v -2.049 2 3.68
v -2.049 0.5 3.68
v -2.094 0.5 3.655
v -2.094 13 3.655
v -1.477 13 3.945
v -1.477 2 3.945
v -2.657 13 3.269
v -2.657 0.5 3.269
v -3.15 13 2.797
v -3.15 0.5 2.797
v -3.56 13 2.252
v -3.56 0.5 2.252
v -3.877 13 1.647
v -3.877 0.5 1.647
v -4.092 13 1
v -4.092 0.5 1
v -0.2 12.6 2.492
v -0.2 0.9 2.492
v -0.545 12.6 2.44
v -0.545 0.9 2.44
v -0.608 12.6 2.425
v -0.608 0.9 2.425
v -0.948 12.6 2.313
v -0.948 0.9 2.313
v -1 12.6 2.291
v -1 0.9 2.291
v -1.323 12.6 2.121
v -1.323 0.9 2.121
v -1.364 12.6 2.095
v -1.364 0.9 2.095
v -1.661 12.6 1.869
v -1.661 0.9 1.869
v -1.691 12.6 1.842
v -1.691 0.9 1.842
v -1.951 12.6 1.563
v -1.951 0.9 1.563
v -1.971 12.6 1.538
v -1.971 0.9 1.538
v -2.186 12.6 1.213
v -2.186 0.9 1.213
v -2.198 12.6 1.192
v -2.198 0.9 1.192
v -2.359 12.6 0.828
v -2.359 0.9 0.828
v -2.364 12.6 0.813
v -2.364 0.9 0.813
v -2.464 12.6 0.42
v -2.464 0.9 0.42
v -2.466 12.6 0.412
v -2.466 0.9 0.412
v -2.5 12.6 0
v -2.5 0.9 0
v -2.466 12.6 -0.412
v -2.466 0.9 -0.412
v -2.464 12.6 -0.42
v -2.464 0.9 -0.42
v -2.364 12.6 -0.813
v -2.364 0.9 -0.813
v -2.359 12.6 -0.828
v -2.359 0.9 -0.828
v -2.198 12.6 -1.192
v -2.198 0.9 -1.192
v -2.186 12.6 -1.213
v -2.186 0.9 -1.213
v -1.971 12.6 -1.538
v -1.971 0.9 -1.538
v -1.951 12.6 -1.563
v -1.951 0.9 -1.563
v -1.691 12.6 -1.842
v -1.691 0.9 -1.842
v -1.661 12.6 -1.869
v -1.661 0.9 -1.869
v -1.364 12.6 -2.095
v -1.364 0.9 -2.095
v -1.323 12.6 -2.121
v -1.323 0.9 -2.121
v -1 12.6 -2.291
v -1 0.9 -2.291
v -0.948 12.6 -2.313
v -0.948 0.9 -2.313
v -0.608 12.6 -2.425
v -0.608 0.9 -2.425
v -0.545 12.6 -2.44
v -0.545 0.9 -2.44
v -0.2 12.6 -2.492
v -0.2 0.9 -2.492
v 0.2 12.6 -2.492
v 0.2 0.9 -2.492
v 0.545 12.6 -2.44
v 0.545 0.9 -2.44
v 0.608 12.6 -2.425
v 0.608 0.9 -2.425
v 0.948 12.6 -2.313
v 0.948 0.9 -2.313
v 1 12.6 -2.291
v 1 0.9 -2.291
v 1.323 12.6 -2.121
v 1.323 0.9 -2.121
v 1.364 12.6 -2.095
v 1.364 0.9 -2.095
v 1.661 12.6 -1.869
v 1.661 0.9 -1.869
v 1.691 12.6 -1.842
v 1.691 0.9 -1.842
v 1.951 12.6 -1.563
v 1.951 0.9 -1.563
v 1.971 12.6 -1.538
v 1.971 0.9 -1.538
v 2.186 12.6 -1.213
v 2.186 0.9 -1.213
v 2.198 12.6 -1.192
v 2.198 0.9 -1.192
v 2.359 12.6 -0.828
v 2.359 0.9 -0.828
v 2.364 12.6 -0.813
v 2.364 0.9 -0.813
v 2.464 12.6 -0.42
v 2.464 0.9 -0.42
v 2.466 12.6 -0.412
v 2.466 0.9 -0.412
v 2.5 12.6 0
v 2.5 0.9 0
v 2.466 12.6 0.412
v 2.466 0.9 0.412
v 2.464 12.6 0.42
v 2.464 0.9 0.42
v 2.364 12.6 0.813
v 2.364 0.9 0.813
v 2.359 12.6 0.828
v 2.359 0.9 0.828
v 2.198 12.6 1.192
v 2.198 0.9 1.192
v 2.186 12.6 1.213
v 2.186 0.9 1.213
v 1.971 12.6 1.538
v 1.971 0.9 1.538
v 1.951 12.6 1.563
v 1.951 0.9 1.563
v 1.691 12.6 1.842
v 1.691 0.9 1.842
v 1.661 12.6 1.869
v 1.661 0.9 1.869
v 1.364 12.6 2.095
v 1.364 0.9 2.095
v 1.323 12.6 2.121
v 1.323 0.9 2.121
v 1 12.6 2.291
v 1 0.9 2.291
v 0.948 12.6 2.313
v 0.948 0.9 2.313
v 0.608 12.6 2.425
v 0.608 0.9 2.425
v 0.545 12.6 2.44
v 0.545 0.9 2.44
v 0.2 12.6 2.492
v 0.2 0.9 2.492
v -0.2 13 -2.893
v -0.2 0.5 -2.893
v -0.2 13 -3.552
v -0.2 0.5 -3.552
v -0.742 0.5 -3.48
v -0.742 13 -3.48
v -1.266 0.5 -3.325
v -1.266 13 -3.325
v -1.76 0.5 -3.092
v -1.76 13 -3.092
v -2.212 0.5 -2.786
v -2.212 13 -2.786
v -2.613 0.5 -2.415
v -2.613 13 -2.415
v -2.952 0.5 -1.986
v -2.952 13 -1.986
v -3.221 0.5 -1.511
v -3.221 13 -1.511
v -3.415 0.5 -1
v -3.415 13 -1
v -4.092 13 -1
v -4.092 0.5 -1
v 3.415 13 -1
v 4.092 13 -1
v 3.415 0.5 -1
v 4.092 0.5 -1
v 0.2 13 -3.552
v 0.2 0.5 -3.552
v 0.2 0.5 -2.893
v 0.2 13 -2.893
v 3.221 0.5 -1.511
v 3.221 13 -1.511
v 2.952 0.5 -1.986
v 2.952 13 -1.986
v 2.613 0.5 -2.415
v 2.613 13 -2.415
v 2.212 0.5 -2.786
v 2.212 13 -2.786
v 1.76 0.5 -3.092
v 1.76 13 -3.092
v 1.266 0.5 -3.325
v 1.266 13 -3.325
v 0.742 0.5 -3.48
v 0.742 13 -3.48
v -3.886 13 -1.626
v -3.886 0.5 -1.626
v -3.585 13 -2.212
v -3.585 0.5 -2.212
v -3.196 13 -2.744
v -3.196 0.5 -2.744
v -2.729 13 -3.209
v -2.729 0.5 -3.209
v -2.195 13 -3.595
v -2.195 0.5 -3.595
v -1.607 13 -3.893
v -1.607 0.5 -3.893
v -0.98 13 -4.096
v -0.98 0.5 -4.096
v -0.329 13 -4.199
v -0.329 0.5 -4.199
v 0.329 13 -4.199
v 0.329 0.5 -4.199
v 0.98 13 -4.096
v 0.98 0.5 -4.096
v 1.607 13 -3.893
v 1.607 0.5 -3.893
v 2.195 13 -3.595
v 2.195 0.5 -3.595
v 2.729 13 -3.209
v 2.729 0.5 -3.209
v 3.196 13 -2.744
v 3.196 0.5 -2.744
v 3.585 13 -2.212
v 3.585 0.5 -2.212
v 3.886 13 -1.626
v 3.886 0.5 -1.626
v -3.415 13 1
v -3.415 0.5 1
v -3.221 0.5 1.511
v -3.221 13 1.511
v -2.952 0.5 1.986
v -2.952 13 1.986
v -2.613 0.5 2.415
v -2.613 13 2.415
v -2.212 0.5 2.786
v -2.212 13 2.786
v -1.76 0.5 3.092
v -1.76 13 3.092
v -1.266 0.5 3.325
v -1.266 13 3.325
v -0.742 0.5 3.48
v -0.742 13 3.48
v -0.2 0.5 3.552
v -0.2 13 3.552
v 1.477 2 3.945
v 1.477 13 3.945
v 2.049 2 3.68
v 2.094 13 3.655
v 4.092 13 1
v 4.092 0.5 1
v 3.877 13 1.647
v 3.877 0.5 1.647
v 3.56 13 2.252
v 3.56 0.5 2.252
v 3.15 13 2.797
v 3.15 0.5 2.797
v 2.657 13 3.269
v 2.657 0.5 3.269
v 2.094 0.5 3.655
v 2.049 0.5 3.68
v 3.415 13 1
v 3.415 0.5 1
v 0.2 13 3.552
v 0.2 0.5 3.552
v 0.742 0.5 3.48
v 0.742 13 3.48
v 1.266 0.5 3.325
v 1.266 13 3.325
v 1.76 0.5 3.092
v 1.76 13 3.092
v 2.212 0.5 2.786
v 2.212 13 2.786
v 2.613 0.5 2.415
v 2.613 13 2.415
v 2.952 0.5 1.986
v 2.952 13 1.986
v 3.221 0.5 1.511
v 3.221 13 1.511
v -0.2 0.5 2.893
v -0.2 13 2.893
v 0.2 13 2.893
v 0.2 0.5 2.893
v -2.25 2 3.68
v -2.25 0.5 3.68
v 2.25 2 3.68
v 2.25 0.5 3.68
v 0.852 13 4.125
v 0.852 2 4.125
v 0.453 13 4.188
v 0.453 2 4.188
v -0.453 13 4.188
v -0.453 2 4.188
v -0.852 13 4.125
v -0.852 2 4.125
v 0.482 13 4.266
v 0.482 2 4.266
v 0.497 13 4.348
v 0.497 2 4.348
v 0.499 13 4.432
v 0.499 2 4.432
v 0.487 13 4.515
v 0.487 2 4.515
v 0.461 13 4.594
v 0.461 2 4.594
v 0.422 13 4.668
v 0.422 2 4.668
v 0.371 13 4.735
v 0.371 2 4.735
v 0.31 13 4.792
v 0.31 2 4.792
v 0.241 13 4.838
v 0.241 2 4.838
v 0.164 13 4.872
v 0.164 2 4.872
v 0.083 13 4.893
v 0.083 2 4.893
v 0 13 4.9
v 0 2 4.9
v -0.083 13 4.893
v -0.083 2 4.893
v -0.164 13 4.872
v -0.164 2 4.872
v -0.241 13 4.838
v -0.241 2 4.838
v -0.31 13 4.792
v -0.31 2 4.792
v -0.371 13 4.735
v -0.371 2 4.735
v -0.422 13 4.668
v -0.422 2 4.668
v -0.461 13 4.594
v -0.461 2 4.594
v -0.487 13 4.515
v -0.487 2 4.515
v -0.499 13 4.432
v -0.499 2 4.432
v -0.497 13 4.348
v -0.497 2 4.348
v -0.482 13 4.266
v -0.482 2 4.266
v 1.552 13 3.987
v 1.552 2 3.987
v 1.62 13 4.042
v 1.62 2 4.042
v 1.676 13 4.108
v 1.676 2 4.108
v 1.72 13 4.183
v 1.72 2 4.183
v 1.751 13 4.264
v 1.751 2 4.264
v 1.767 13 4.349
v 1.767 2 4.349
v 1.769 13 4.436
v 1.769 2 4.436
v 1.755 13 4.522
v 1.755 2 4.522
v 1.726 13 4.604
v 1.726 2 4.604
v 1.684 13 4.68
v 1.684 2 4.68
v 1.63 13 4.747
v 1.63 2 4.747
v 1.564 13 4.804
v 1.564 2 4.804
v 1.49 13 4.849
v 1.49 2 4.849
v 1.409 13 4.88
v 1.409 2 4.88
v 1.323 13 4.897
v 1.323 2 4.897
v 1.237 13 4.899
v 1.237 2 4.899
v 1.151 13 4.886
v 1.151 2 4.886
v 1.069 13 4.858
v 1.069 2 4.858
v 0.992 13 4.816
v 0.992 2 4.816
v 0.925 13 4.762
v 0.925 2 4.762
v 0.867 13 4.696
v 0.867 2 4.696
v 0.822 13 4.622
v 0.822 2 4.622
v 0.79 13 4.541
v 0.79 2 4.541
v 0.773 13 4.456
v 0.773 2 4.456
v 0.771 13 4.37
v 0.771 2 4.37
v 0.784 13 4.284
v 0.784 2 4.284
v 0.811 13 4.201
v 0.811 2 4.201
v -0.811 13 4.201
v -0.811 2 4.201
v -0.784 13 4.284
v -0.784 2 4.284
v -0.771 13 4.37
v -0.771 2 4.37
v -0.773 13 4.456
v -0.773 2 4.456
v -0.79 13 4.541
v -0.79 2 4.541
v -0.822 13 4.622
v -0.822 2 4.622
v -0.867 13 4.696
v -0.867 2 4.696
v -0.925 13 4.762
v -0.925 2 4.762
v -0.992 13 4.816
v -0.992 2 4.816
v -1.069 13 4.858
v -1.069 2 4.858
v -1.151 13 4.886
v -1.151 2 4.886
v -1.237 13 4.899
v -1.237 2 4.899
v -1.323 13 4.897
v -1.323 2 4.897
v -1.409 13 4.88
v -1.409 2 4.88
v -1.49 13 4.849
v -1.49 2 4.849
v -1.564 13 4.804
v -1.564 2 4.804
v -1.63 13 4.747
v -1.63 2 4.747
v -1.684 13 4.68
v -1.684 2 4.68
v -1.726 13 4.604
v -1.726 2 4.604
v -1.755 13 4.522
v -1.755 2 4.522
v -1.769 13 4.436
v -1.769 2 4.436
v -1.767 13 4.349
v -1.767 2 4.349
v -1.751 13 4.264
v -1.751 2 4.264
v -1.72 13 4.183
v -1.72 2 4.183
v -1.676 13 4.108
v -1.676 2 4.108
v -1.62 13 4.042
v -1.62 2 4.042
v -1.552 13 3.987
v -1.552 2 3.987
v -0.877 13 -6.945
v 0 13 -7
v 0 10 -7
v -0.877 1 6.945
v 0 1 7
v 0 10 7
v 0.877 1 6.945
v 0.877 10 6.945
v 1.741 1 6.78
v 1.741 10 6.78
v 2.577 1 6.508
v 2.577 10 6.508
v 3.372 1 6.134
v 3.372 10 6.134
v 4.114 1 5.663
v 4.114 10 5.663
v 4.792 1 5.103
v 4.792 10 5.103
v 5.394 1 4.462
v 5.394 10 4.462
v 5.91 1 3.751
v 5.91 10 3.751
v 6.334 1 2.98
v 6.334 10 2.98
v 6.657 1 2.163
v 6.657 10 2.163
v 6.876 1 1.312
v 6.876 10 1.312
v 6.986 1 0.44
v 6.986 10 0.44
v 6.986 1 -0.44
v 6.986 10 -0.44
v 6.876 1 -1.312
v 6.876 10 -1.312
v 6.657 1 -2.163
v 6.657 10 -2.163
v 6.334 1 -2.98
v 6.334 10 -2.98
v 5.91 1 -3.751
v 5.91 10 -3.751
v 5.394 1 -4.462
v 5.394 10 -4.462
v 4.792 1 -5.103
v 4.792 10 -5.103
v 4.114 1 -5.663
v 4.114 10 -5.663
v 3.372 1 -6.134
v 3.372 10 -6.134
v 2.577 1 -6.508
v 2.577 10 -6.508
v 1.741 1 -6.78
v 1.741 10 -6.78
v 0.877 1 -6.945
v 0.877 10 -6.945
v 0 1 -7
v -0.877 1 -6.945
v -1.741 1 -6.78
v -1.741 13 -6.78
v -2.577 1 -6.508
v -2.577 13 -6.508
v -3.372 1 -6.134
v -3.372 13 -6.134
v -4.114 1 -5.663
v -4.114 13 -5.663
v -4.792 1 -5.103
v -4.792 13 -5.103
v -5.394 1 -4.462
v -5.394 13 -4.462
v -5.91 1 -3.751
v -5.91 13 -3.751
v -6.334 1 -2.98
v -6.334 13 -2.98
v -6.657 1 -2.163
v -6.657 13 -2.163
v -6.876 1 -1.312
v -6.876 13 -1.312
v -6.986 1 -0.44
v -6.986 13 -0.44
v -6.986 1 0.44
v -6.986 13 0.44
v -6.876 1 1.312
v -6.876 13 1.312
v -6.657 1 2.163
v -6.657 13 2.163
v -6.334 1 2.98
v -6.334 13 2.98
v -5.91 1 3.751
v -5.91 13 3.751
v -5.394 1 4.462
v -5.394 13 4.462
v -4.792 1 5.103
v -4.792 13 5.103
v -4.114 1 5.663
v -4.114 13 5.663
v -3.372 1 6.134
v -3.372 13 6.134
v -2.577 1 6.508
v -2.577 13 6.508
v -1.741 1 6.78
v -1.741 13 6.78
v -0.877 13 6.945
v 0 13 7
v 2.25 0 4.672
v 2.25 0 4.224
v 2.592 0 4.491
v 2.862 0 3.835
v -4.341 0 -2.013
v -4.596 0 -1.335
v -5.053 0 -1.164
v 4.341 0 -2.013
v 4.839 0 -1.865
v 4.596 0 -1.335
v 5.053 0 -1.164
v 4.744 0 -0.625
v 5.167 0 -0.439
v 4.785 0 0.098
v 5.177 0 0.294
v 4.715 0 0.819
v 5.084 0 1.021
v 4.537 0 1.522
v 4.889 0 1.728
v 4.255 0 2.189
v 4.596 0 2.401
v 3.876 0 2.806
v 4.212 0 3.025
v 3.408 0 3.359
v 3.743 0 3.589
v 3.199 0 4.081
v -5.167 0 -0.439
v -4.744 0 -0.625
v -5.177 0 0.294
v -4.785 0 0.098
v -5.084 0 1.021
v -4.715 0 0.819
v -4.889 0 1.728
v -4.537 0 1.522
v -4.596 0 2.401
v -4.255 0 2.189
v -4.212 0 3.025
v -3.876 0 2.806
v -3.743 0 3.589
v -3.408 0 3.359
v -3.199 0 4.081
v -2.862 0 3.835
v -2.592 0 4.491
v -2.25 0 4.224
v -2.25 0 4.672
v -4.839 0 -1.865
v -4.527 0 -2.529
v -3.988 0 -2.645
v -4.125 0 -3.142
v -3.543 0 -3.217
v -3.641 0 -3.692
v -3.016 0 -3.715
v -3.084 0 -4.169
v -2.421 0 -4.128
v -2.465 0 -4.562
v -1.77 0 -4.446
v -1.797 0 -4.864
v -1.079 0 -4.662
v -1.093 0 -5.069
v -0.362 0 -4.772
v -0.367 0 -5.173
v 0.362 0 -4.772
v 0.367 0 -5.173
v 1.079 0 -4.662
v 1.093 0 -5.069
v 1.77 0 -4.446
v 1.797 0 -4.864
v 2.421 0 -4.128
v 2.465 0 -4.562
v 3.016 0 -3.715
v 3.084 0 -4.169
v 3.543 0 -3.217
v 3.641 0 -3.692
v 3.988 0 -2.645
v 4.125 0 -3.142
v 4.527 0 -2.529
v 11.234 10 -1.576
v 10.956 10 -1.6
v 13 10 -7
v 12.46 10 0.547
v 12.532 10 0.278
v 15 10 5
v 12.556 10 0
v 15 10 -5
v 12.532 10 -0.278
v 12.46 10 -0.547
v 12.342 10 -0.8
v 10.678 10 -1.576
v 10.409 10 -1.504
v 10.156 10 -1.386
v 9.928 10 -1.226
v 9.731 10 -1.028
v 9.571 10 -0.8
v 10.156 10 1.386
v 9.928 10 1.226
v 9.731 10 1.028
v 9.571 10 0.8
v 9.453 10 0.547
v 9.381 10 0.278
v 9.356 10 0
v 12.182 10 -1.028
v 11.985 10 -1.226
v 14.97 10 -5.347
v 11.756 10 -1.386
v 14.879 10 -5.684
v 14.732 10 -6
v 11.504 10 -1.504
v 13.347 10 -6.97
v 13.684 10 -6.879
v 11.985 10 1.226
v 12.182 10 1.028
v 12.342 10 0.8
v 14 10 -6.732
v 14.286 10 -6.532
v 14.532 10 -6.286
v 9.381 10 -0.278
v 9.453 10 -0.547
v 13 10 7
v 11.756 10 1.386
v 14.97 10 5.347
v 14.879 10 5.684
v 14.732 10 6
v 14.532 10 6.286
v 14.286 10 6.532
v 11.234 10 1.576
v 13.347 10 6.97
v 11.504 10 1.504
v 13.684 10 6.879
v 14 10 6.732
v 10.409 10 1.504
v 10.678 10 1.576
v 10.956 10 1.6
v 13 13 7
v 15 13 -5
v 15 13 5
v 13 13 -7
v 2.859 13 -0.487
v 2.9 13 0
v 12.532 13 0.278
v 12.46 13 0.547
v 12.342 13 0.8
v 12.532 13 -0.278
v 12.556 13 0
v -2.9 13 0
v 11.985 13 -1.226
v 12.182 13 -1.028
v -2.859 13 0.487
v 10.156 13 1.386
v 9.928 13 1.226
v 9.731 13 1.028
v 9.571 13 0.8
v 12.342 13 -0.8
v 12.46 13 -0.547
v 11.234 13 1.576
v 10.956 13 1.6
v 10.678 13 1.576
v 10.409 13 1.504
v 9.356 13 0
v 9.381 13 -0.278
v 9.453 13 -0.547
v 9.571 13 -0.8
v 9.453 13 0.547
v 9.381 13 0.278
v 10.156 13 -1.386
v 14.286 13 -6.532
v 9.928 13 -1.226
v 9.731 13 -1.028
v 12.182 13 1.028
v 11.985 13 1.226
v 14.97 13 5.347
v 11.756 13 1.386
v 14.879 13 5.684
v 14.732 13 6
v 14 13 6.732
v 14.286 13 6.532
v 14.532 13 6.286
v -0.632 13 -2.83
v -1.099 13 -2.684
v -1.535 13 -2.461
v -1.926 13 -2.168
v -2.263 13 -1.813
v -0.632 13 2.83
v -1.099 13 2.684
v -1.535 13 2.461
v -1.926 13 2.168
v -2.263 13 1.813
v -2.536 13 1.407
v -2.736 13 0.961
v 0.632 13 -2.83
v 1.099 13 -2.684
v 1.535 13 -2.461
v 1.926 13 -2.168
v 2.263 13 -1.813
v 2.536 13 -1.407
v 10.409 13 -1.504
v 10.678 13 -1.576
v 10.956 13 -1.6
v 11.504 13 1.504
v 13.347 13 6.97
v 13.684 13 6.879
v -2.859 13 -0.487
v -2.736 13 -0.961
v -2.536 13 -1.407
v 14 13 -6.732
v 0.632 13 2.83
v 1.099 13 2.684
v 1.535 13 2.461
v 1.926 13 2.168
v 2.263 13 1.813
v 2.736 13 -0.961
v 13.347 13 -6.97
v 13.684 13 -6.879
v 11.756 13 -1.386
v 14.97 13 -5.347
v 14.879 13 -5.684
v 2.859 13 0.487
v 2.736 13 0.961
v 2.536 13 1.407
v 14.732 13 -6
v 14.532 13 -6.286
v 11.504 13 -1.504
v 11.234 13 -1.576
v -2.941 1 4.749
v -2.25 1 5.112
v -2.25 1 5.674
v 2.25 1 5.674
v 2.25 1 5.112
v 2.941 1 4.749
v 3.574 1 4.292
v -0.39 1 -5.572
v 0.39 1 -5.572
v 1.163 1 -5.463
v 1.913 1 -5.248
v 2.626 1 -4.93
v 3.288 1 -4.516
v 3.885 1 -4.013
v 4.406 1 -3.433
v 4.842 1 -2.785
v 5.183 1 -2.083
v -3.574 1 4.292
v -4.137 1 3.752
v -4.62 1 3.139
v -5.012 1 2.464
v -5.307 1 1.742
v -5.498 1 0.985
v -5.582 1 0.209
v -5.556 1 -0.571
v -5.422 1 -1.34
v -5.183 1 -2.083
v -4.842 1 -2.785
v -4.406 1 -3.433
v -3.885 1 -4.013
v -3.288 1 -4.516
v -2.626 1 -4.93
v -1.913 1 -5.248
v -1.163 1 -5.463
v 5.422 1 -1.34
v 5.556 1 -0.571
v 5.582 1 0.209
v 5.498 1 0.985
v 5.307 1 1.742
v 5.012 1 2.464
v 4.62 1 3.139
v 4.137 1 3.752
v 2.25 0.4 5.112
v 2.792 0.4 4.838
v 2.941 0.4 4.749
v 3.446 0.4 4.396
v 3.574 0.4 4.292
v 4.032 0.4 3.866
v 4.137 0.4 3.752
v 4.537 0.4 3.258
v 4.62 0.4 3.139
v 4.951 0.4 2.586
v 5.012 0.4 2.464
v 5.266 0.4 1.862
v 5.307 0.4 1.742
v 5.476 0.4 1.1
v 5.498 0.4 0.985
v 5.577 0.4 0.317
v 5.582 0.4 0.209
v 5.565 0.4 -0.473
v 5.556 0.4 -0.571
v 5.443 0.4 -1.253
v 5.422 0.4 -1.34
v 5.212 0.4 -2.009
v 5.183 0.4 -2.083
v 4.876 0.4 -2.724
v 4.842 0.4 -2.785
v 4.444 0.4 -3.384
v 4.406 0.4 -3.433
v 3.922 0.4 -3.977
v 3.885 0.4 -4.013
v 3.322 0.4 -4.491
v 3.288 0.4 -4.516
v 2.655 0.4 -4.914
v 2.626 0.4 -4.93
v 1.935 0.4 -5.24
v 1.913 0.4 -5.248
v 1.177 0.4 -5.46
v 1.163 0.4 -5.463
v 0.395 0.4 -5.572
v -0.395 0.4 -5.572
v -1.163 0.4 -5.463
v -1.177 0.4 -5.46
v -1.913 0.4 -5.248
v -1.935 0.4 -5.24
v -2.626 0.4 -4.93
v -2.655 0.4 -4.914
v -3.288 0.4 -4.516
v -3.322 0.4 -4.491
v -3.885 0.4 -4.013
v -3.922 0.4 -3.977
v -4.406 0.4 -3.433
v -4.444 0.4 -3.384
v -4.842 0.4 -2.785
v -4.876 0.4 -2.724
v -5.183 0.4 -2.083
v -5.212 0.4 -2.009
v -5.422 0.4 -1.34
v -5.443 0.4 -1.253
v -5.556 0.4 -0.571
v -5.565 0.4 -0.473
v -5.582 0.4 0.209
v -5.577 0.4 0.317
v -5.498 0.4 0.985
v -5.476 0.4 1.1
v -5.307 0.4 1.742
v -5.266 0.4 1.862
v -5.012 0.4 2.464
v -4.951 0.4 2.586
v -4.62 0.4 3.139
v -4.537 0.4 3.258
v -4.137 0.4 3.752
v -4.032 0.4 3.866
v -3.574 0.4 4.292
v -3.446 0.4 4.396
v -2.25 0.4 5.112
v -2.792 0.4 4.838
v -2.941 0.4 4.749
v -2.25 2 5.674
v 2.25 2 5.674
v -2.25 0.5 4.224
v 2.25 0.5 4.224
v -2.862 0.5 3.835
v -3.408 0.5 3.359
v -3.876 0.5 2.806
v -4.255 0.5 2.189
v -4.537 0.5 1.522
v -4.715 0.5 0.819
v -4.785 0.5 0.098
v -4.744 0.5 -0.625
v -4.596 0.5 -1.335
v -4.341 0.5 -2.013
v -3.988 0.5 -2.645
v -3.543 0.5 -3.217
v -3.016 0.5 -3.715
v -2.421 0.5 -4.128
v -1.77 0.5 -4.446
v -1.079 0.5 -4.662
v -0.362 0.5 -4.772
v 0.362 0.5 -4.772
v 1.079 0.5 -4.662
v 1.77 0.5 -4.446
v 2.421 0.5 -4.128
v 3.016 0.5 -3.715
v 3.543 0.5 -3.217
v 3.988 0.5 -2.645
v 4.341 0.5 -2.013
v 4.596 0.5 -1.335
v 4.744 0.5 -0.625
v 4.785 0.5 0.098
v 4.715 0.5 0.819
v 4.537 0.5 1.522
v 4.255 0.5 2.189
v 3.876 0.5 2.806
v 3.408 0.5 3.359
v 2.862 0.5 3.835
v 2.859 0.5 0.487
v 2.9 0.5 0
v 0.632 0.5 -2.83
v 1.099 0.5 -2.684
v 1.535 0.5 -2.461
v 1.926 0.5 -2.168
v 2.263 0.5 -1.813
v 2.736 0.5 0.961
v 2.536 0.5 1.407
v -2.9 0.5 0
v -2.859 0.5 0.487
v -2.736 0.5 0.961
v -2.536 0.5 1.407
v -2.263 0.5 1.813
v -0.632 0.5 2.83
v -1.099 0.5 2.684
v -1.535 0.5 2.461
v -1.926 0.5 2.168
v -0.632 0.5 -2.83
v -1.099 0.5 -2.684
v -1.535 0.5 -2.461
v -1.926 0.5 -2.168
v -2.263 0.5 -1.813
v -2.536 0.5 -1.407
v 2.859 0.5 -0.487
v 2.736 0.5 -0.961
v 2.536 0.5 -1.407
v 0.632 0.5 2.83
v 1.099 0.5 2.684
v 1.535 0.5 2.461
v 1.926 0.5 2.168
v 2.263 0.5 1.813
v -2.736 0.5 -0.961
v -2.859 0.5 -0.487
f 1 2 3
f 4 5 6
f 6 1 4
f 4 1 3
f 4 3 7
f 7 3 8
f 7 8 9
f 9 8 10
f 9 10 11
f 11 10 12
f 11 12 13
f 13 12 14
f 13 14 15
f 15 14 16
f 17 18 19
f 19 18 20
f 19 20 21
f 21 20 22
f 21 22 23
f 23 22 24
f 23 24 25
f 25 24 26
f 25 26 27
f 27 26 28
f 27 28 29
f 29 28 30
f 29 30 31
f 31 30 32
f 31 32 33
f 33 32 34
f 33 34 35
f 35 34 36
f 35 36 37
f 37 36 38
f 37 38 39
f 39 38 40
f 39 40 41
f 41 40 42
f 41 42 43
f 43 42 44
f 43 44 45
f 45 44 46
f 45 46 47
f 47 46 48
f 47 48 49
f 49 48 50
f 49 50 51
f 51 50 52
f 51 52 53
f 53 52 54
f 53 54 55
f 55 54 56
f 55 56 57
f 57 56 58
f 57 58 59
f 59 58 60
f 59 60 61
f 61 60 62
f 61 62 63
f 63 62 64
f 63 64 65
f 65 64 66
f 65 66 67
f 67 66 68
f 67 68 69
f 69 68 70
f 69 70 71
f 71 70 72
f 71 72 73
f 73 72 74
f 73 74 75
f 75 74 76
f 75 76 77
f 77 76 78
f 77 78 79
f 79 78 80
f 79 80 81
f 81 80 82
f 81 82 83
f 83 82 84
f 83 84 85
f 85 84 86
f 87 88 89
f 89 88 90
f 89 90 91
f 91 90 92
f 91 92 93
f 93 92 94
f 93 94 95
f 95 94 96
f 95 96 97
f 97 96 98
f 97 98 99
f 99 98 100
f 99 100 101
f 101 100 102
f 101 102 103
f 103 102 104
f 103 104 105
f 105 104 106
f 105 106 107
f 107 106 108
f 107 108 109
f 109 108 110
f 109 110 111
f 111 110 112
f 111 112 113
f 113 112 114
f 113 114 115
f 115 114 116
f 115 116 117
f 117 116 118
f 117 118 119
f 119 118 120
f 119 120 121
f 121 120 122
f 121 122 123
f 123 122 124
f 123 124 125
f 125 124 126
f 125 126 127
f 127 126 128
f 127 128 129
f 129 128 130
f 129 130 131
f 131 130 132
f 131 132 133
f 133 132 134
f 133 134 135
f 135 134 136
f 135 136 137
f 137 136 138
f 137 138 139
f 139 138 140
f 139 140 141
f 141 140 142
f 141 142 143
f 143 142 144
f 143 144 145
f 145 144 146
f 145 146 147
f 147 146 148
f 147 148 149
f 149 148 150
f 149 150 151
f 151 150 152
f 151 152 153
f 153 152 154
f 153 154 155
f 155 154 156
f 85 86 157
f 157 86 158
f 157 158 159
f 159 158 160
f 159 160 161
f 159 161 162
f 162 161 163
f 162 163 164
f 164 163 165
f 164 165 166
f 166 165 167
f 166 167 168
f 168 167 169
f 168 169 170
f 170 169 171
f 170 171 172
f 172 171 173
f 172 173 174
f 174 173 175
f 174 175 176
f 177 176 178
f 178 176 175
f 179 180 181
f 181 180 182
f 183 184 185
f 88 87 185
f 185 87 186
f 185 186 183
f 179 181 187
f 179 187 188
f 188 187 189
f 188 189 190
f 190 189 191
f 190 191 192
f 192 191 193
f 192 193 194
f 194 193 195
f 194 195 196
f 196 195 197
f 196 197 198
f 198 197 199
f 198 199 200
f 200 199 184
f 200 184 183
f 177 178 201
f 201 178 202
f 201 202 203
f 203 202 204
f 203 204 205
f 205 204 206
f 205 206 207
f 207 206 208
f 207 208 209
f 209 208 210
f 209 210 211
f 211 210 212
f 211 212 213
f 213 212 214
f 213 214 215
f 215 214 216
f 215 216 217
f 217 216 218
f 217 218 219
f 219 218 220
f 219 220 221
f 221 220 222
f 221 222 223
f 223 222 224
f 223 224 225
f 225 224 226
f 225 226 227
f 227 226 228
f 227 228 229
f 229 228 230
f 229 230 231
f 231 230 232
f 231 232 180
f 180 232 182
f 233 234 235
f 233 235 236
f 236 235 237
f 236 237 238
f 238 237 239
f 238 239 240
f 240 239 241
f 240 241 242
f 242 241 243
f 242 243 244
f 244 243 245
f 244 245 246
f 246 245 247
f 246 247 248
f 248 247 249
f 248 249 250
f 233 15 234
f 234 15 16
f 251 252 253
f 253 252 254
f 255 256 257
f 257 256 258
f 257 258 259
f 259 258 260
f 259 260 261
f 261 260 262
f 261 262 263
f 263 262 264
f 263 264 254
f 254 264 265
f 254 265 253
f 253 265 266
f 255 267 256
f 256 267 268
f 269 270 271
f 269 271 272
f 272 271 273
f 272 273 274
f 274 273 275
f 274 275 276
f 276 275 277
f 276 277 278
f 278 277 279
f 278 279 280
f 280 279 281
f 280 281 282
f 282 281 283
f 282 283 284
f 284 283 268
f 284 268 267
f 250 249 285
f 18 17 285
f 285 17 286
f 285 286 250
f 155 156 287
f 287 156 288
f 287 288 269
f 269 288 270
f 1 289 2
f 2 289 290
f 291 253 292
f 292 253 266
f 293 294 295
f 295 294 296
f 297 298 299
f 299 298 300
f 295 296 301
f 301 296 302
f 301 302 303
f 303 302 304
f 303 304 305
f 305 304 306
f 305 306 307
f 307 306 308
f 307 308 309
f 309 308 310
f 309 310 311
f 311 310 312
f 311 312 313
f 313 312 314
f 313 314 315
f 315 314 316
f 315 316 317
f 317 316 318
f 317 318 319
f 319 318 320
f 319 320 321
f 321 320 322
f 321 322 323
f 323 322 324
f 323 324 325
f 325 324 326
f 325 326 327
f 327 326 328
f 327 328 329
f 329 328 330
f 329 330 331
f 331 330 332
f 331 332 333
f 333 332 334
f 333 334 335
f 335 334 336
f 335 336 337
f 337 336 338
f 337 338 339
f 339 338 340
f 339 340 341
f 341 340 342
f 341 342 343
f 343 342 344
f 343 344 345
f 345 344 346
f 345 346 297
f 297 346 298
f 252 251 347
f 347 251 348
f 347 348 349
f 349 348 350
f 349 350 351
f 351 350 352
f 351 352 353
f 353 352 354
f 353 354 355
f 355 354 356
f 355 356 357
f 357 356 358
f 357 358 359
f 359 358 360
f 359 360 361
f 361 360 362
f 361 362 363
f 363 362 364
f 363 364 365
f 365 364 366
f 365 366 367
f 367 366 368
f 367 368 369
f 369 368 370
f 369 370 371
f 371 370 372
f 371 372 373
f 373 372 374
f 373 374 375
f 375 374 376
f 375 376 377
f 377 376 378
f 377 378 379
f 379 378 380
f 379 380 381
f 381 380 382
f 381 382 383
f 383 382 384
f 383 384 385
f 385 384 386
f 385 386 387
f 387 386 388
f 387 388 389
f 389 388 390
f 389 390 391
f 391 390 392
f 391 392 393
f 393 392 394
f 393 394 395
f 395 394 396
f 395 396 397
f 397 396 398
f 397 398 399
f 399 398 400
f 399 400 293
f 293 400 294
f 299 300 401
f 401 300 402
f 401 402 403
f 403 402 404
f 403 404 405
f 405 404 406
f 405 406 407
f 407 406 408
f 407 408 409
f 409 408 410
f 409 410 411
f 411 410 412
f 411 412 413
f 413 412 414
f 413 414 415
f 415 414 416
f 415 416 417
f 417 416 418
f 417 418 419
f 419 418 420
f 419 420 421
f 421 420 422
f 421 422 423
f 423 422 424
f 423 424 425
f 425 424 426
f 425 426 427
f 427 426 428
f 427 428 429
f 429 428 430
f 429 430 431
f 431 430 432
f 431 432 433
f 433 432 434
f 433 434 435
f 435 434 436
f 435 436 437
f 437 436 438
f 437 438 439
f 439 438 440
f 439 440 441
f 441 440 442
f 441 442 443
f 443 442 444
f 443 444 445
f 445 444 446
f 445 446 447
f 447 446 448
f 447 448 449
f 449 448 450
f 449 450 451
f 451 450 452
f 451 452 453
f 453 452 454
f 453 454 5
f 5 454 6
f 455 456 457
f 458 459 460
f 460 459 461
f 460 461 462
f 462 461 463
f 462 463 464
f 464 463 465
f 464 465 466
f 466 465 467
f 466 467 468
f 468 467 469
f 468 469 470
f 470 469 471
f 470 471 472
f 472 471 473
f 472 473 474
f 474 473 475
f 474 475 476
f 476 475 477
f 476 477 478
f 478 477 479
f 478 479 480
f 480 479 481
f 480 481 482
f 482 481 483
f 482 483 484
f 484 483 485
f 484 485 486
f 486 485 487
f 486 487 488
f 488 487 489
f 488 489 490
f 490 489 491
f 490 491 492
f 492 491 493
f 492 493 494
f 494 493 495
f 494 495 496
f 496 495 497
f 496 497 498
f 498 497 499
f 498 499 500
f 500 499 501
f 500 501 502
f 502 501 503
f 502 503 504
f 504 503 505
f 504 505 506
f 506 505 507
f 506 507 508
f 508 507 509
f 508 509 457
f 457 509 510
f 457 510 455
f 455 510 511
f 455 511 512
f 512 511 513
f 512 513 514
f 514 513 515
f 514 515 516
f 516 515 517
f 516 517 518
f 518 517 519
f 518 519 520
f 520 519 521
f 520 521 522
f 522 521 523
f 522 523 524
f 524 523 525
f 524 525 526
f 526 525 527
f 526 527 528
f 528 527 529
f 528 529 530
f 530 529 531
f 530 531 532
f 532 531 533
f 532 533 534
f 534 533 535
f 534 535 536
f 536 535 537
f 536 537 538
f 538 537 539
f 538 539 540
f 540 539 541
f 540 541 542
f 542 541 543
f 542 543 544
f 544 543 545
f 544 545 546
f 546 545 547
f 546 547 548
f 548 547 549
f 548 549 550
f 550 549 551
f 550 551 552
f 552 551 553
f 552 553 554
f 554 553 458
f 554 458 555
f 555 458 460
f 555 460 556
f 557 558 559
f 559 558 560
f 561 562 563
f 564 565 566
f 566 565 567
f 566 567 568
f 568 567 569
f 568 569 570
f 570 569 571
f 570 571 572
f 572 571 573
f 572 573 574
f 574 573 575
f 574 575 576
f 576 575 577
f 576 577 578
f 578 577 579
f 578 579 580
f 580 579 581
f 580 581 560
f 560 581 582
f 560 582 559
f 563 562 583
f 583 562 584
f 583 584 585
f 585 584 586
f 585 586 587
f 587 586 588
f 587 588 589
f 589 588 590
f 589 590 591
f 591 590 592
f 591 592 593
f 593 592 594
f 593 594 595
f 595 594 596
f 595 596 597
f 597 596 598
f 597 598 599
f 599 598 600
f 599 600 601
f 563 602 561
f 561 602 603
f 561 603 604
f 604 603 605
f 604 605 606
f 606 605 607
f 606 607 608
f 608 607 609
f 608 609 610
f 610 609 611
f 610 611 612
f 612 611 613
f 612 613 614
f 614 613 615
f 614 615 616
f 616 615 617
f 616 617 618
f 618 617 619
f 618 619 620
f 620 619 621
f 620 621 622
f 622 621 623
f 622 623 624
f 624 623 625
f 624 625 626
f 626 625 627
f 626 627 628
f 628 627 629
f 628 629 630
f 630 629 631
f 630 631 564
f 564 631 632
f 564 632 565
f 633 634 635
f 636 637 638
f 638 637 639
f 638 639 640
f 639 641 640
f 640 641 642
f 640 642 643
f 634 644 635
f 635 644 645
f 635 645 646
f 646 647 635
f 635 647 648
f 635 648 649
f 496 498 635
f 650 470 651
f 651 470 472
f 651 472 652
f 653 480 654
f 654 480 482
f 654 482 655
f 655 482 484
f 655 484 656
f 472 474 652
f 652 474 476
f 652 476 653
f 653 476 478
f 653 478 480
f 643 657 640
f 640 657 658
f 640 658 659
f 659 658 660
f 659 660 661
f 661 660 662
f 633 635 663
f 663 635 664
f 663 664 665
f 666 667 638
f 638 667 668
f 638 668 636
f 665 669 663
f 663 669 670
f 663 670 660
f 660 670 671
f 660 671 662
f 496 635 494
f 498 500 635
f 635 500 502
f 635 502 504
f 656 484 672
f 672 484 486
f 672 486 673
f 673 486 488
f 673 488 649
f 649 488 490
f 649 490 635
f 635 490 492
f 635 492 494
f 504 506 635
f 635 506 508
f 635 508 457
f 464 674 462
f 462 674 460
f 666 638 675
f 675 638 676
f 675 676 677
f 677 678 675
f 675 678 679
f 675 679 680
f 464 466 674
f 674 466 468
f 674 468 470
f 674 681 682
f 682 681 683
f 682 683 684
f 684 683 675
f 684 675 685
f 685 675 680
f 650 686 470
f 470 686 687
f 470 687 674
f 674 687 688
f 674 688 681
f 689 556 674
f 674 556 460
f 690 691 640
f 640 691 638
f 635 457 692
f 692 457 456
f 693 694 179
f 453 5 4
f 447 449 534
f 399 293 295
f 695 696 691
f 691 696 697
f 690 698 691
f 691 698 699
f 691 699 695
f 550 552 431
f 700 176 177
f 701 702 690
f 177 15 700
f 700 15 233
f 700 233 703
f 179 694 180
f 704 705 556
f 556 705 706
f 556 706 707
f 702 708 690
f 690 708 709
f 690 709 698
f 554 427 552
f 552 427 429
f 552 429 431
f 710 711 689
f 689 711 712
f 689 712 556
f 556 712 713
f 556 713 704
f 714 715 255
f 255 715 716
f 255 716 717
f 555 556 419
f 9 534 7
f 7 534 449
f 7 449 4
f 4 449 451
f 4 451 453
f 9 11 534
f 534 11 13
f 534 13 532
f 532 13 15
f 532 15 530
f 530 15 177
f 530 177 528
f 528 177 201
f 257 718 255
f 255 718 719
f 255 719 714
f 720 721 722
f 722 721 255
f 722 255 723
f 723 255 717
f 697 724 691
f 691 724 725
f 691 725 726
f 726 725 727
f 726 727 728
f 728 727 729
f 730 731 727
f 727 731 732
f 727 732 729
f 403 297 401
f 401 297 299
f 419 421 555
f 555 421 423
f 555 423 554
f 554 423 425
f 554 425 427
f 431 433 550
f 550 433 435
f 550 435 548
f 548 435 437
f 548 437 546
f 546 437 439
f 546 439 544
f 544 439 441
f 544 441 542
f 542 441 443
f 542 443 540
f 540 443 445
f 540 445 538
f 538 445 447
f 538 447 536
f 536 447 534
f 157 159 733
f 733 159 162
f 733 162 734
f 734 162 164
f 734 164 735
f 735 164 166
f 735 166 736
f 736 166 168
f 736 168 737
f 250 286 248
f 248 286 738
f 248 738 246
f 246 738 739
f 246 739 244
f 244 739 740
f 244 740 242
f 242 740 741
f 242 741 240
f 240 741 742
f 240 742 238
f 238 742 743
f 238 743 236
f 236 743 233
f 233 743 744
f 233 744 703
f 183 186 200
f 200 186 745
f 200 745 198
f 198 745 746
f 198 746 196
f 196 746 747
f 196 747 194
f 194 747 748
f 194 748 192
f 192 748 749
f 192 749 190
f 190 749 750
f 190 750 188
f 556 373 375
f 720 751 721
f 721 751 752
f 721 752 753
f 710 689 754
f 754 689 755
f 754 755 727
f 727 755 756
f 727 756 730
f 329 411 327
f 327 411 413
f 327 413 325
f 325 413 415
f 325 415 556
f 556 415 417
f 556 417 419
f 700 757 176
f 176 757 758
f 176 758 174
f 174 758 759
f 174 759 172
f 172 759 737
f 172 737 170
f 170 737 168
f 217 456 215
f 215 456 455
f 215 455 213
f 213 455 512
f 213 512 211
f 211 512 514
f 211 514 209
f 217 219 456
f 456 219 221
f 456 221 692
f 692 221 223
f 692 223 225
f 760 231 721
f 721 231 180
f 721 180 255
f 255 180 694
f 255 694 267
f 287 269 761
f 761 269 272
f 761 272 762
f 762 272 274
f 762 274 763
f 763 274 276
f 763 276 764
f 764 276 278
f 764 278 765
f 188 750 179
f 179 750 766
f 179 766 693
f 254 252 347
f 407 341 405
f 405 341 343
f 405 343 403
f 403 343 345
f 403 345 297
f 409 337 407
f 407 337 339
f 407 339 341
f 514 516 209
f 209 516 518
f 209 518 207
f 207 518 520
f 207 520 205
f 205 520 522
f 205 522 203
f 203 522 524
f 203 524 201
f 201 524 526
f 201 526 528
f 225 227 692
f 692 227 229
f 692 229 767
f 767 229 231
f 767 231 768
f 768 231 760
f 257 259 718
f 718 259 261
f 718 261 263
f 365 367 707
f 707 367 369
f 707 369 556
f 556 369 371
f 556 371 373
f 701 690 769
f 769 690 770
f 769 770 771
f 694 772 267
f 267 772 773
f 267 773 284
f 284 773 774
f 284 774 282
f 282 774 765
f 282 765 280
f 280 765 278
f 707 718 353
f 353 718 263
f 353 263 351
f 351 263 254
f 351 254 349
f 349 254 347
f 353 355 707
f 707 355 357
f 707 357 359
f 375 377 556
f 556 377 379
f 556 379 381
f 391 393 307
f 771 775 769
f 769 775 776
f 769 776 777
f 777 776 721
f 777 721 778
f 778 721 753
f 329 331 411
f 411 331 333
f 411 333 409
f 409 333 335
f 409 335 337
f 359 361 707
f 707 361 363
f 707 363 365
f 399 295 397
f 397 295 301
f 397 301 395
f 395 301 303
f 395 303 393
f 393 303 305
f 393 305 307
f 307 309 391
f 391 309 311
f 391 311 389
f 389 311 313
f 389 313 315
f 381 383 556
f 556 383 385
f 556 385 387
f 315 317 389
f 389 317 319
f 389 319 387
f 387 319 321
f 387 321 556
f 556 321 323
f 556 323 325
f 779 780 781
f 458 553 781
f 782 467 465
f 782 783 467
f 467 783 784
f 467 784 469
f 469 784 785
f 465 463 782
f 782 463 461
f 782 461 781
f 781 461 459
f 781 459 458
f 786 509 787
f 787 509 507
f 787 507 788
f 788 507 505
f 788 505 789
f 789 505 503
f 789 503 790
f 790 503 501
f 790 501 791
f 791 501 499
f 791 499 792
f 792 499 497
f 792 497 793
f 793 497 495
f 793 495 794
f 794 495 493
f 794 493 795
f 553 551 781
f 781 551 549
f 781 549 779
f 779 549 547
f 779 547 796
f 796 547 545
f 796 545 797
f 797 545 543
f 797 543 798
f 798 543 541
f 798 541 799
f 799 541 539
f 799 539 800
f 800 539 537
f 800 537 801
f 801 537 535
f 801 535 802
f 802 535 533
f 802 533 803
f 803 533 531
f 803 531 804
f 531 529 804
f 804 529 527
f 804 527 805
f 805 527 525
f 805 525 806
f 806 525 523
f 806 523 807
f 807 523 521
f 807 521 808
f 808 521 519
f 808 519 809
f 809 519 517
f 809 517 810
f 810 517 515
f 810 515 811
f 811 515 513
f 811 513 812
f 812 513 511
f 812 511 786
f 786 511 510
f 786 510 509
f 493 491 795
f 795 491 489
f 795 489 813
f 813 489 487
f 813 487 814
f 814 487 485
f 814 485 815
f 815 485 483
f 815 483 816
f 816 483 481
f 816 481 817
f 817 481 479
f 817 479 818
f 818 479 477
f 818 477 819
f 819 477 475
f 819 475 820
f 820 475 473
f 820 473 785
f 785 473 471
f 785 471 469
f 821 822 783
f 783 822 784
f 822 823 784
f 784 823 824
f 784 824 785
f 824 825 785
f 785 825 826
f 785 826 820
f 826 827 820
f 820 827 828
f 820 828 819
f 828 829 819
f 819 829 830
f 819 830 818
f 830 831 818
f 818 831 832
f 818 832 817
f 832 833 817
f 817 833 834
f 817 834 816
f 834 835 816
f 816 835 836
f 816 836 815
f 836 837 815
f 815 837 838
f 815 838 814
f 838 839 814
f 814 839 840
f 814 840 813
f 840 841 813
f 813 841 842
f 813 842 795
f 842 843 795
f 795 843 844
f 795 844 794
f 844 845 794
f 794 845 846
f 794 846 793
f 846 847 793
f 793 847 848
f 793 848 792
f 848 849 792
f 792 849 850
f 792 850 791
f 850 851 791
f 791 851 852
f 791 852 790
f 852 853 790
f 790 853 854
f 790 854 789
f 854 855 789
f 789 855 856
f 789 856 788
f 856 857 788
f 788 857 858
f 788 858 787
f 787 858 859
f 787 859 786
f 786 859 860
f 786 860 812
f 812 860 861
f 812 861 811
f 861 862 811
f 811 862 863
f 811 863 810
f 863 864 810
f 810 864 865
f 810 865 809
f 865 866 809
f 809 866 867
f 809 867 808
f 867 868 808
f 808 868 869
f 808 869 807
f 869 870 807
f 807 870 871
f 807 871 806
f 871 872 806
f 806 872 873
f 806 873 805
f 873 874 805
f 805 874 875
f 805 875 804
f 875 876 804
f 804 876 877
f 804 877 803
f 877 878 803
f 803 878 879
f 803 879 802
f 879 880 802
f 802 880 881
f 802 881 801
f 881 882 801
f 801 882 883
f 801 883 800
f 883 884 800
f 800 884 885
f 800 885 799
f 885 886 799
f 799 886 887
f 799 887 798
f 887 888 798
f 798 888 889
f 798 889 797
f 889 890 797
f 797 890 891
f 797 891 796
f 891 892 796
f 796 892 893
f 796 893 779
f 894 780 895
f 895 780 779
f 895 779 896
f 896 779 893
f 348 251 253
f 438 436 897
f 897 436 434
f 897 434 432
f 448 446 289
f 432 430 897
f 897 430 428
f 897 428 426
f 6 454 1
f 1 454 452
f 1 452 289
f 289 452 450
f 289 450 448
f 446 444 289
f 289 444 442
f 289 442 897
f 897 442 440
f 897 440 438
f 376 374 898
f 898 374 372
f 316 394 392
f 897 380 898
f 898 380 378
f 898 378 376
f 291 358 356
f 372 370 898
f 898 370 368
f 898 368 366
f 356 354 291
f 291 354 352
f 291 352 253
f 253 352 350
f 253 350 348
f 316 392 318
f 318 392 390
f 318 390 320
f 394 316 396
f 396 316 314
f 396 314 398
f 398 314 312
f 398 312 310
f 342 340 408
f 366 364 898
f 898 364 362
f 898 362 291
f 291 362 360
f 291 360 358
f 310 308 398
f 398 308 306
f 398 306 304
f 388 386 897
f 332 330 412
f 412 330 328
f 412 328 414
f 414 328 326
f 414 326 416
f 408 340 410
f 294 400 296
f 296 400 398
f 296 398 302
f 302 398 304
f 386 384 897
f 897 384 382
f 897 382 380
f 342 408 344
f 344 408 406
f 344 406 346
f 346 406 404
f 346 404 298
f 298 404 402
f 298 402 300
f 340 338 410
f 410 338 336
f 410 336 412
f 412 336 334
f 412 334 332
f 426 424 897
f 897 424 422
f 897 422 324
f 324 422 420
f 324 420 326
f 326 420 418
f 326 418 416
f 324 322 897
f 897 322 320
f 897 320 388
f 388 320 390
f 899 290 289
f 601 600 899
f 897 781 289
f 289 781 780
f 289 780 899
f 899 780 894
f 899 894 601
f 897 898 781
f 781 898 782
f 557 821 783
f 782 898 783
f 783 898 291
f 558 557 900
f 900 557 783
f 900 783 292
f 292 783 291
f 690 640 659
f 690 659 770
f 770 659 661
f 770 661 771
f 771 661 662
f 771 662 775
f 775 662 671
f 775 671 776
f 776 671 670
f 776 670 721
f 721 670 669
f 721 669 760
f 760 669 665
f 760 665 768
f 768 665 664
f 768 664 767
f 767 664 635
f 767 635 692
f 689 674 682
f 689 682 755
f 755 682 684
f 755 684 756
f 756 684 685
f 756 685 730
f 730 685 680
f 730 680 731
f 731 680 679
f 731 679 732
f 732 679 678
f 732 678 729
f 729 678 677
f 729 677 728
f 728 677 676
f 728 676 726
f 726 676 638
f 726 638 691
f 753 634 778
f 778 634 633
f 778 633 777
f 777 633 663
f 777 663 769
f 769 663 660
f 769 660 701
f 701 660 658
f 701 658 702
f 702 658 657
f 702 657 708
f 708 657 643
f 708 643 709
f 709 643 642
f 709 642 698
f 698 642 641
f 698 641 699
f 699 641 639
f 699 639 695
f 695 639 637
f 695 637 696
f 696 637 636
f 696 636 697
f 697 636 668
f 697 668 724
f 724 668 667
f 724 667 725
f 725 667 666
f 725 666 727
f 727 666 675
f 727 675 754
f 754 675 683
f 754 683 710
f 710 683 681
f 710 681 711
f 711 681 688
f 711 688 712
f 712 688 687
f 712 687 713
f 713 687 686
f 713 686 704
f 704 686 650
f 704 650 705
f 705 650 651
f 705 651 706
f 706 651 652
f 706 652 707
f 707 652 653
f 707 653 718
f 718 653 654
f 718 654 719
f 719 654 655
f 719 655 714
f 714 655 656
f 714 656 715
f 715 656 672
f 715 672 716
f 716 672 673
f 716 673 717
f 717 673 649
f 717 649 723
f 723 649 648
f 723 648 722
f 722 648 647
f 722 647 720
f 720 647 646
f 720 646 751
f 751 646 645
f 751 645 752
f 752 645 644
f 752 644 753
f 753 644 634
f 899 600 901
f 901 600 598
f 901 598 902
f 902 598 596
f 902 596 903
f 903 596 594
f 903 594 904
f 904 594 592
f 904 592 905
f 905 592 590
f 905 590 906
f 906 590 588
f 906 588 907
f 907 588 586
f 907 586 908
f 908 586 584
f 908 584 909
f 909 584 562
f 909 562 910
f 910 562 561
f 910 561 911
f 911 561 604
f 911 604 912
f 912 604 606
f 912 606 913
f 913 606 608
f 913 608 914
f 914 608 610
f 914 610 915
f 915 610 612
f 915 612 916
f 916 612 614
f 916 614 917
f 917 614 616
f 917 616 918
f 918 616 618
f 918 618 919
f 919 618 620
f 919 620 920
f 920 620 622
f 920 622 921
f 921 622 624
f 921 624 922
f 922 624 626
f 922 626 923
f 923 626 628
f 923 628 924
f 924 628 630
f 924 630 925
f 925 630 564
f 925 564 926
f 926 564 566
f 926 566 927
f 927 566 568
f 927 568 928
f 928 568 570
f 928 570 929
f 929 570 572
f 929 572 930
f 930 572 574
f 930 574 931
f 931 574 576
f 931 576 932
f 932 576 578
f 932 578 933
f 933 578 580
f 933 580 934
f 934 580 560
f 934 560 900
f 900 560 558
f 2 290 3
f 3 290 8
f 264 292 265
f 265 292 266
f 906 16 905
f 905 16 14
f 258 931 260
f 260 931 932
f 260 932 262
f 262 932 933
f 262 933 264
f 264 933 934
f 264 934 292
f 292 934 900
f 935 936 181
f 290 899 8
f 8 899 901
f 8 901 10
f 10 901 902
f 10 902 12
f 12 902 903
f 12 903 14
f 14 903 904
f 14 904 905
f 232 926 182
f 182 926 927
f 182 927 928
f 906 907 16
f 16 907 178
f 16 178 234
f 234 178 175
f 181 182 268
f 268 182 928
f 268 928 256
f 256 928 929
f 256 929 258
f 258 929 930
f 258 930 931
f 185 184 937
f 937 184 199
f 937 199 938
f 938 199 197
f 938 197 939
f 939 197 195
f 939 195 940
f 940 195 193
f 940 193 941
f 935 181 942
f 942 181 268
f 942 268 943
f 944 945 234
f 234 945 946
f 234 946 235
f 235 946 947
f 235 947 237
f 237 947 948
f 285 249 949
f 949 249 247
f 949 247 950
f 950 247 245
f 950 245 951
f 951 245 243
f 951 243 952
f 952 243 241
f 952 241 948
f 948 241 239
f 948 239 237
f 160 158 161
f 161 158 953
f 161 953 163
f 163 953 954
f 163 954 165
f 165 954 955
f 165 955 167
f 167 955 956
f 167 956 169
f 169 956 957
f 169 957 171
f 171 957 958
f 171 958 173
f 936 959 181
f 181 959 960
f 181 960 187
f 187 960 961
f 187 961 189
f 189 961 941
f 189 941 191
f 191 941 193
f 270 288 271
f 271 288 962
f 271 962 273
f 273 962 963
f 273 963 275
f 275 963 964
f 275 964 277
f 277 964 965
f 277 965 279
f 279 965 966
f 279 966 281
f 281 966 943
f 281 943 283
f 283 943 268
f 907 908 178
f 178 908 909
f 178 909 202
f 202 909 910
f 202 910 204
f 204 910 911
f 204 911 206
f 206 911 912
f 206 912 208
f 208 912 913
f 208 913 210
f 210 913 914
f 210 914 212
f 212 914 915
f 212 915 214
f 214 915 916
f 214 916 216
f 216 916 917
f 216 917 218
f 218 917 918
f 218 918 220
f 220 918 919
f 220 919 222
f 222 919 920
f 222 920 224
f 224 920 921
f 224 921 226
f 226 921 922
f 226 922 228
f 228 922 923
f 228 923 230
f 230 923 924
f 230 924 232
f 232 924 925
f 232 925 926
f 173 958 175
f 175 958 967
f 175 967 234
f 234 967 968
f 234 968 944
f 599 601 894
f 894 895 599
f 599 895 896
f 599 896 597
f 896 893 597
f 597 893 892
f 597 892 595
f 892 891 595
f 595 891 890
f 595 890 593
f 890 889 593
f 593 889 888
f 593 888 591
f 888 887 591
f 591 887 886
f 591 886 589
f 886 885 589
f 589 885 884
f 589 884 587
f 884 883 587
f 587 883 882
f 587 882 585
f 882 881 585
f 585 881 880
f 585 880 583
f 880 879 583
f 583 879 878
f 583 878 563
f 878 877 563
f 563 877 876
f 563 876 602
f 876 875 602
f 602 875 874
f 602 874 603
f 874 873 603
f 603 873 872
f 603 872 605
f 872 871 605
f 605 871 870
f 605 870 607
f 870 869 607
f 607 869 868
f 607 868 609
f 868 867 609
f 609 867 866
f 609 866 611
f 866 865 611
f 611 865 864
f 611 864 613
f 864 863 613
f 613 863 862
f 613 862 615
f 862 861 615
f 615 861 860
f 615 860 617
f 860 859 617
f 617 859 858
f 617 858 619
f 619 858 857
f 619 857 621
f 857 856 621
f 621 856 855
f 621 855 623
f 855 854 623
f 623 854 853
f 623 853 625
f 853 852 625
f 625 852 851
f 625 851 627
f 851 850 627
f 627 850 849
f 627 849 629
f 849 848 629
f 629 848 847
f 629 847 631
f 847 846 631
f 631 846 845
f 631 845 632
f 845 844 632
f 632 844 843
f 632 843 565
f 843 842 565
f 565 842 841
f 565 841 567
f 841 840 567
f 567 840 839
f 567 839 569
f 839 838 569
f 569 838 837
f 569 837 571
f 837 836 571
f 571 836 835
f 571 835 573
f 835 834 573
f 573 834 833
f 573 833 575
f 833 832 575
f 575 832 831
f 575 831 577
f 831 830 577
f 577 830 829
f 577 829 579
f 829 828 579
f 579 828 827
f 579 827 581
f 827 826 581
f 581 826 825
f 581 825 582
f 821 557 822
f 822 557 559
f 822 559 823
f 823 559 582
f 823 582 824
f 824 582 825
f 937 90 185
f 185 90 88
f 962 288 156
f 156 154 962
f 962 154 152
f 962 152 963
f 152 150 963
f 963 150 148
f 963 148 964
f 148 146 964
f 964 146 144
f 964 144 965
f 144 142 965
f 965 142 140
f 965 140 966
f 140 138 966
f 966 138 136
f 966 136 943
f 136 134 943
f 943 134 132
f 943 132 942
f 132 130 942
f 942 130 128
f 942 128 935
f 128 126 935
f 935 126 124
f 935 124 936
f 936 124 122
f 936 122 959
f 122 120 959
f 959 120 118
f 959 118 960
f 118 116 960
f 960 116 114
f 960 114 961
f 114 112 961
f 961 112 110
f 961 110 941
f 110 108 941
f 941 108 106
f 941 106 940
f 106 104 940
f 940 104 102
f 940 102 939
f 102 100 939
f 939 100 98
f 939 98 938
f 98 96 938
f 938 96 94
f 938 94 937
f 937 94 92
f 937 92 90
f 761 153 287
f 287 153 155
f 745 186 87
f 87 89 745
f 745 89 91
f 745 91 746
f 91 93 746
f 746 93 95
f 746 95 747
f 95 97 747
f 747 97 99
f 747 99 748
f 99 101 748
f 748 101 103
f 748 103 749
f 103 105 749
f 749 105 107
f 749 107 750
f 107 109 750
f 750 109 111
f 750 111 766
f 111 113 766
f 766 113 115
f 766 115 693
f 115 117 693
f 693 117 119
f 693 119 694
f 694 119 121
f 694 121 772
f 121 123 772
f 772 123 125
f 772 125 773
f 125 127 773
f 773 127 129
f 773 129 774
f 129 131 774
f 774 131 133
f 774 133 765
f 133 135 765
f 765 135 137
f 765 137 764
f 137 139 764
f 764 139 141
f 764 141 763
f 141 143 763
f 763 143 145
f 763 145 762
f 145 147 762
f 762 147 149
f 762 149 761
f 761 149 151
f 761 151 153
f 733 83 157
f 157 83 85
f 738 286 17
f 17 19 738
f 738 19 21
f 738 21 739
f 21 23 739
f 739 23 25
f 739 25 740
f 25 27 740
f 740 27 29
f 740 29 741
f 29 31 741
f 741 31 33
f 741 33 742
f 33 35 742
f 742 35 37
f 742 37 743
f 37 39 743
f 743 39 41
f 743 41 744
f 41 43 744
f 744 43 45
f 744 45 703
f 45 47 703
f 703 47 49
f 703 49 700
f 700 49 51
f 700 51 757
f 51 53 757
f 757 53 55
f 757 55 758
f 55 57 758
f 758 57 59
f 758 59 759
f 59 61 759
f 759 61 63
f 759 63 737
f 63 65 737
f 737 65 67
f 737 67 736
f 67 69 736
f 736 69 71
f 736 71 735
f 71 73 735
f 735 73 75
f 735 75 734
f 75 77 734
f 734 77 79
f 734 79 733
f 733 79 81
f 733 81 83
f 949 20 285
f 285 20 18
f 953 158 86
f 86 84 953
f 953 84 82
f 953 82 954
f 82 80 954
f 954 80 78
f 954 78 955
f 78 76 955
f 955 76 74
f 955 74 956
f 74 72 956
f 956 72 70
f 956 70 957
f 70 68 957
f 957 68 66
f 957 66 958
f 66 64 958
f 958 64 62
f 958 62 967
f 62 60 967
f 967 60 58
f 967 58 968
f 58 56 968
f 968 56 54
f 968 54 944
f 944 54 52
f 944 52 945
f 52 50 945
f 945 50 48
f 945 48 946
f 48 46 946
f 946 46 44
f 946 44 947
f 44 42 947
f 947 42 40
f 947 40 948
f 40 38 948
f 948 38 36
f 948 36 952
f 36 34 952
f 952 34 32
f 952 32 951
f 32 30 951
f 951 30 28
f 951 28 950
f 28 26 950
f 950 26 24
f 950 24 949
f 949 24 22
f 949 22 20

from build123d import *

# Parameters (mm, degrees)
SKETCH_1_R                  = 7
EXTRUDE_1_DEPTH             = 10
EXTRUDE_2_DEPTH             = 3
SKETCH_4_R                  = 2.5
CUT_EXTRUDE_1_DEPTH         = 1
CUT_EXTRUDE_1_DEPTH_BACK    = 14
SKETCH_6_R                  = 7
SKETCH_6_R_2                = 5.585510808
CUT_EXTRUDE_3_DEPTH         = 1
CUT_EXTRUDE_6_DEPTH         = 1
CUT_EXTRUDE_6_DEPTH_BACK    = 14
SKETCH_8_R                  = 0.5
CUT_EXTRUDE_1254_DEPTH      = 1
CUT_EXTRUDE_1254_DEPTH_BACK = 14
SKETCH_9_W                  = 4.5
SKETCH_9_H                  = 1.993168192
TSSOP_DEPTH                 = 2
FILLET_1_R                  = 2
SKETCH_10_R                 = 1.6
CUT_EXTRUDE_9_DEPTH         = 11
CUT_EXTRUDE_9_DEPTH_BACK    = 4
SKETCH_11_R                 = 4.785510808
CUT_EXTRUDE_10_DEPTH        = 0.5
CHAMFER_1_SIZE              = 0.4
CHAMFER_2_SIZE              = 0.4
CHAMFER_3_SIZE              = 0.4
CHAMFER_4_SIZE              = 0.4


with BuildPart() as part:
    # Эскиз1 → Бобышка-Вытянуть1 (new body)
    with BuildSketch(Plane(origin=(0, 0, 0), x_dir=(1, 0, 0), z_dir=(0, 1, 0))):
        Circle(SKETCH_1_R)
    extrude(amount=EXTRUDE_1_DEPTH)

    # Эскиз3 → Бобышка-Вытянуть2 (add)
    with BuildSketch(Plane(origin=(0, 10, 0), x_dir=(1, 0, 0), z_dir=(0, 1, 0))):
        with BuildLine():
            Line((0, 7), (15, 7))
            Line((15, 7), (15, -7))
            Line((15, -7), (0, -7))
            ThreePointArc((0, -7), (-7, 0), (0, 7))
        make_face()
    extrude(amount=EXTRUDE_2_DEPTH)

    # Эскиз4 → Вырез-Вытянуть1 (cut, two sides)
    with BuildSketch(Plane.XZ) as cut_extrude_1_sk:
        Circle(SKETCH_4_R)
    extrude(amount=CUT_EXTRUDE_1_DEPTH, mode=Mode.SUBTRACT)
    extrude(cut_extrude_1_sk.sketch, amount=-CUT_EXTRUDE_1_DEPTH_BACK, mode=Mode.SUBTRACT)

    # Эскиз6 → Вырез-Вытянуть3 (cut)
    with BuildSketch(Plane.XZ):
        Circle(SKETCH_6_R)
        Circle(SKETCH_6_R_2, mode=Mode.SUBTRACT)
    extrude(amount=-CUT_EXTRUDE_3_DEPTH, mode=Mode.SUBTRACT)

    # Эскиз7 → Вырез-Вытянуть6 (cut, two sides)
    with BuildSketch(Plane.XZ) as cut_extrude_6_sk:
        with BuildLine():
            Line((3.414540389, 1), (4.09167532, 1))
            ThreePointArc((4.09167532, 1), (0, 4.212102435), (-4.09167532, 1))
            Line((-4.09167532, 1), (-3.414540389, 1))
            ThreePointArc((-3.414540389, 1), (-2.212426139, 2.786441573), (-0.2, 3.552335297))
            Line((-0.2, 3.552335297), (-0.2, -3.552335297))
            ThreePointArc((-0.2, -3.552335297), (-2.212426139, -2.786441573), (-3.414540389, -1))
            Line((-3.414540389, -1), (-4.09167532, -1))
            ThreePointArc((-4.09167532, -1), (0, -4.212102435), (4.09167532, -1))
            Line((4.09167532, -1), (3.414540389, -1))
            ThreePointArc((3.414540389, -1), (2.212426139, -2.786441573), (0.2, -3.552335297))
            Line((0.2, -3.552335297), (0.2, 3.552335297))
            ThreePointArc((0.2, 3.552335297), (2.212426139, 2.786441573), (3.414540389, 1))
        make_face()
    extrude(amount=CUT_EXTRUDE_6_DEPTH, mode=Mode.SUBTRACT)
    extrude(cut_extrude_6_sk.sketch, amount=-CUT_EXTRUDE_6_DEPTH_BACK, mode=Mode.SUBTRACT)

    # Эскиз8 → Cut-Extrude 1254 (cut, two sides)
    with BuildSketch(Plane.XZ) as cut_extrude_1254_sk:
        with Locations((0, 4.4)):
            Circle(SKETCH_8_R)
        with Locations((1.27, 4.4)):
            Circle(SKETCH_8_R)
        with Locations((-1.27, 4.4)):
            Circle(SKETCH_8_R)
    extrude(amount=CUT_EXTRUDE_1254_DEPTH, mode=Mode.SUBTRACT)
    extrude(cut_extrude_1254_sk.sketch, amount=-CUT_EXTRUDE_1254_DEPTH_BACK, mode=Mode.SUBTRACT)

    # Эскиз9 → Вырез под TSSOP (cut)
    with BuildSketch(Plane.XZ):
        with Locations((0, 4.676972269)):
            Rectangle(SKETCH_9_W, SKETCH_9_H)
    extrude(amount=-TSSOP_DEPTH, mode=Mode.SUBTRACT)

    # Скругление1
    fillet_1_edges = [part.edges().sort_by_distance(p)[0] for p in [
        (15, 11.5, 7),
        (15, 11.5, -7),
    ]]
    fillet(fillet_1_edges, radius=FILLET_1_R)

    # Эскиз10 → Вырез-Вытянуть9 (cut, two sides)
    with BuildSketch(Plane.XZ.offset(-10)) as cut_extrude_9_sk:
        with Locations((10.956298859, 0)):
            Circle(SKETCH_10_R)
    extrude(amount=CUT_EXTRUDE_9_DEPTH, mode=Mode.SUBTRACT)
    extrude(cut_extrude_9_sk.sketch, amount=-CUT_EXTRUDE_9_DEPTH_BACK, mode=Mode.SUBTRACT)

    # Эскиз11 → Вырез-Вытянуть10 (cut)
    with BuildSketch(Plane.XZ):
        Circle(SKETCH_11_R)
    extrude(amount=-CUT_EXTRUDE_10_DEPTH, mode=Mode.SUBTRACT)

    # Фаска1
    chamfer_1_edges = [part.edges().sort_by_distance(p)[0] for p in [
        (-3.052092042, 0, -4.677891101),
    ]]
    chamfer(chamfer_1_edges, length=CHAMFER_1_SIZE)

    # Фаска2
    chamfer_2_edges = [part.edges().sort_by_distance(p)[0] for p in [
        (1.837117307, 0.5, -1.695582496),
    ]]
    chamfer(chamfer_2_edges, length=CHAMFER_2_SIZE)

    # Фаска3
    chamfer_3_edges = [part.edges().sort_by_distance(p)[0] for p in [
        (1.837117307, 13, -1.695582496),
        (-2.5, 13, 0),
    ]]
    chamfer(chamfer_3_edges, length=CHAMFER_3_SIZE)

    # Фаска4
    chamfer_4_edges = [part.edges().sort_by_distance(p)[0] for p in [
        (-2.5, 0.5, 0),
    ]]
    chamfer(chamfer_4_edges, length=CHAMFER_4_SIZE)


solid = part.part
